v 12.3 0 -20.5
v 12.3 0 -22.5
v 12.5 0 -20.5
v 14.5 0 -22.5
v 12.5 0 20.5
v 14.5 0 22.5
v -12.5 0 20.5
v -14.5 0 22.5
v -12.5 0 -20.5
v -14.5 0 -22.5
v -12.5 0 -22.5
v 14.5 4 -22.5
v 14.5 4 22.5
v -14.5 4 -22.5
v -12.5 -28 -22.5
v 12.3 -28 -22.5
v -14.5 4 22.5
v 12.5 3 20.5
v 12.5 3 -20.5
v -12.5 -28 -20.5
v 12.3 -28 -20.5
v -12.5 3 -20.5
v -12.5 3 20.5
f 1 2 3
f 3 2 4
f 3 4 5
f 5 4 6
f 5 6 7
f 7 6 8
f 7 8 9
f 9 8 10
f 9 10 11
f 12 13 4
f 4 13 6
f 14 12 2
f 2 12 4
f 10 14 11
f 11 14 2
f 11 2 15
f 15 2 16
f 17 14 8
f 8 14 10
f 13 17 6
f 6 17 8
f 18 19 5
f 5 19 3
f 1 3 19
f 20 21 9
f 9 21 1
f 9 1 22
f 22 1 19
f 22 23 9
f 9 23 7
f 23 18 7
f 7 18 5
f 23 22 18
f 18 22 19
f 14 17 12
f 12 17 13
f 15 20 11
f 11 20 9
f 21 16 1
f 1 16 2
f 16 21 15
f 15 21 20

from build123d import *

# Parameters (mm, degrees)
SKETCH1_W           = 29
SKETCH1_H           = 45
SKETCH1_W_2         = 25
SKETCH1_H_2         = 41
BOSS_EXTRUDE1_DEPTH = 3
SKETCH2_W           = 29
SKETCH2_H           = 45
BOSS_EXTRUDE2_DEPTH = 1
SKETCH4_W           = 24.8
SKETCH4_H           = 2
BOSS_EXTRUDE3_DEPTH = 28


with BuildPart() as part:
    # Sketch1 → Boss-Extrude1 (new body)
    with BuildSketch(Plane(origin=(0, 0, 0), x_dir=(1, 0, 0), z_dir=(0, 1, 0))):
        Rectangle(SKETCH1_W, SKETCH1_H)
        Rectangle(SKETCH1_W_2, SKETCH1_H_2, mode=Mode.SUBTRACT)
    extrude(amount=BOSS_EXTRUDE1_DEPTH)

    # Sketch2 → Boss-Extrude2 (add)
    with BuildSketch(Plane(origin=(0, 3, 0), x_dir=(1, 0, 0), z_dir=(0, 1, 0))):
        Rectangle(SKETCH2_W, SKETCH2_H)
    extrude(amount=BOSS_EXTRUDE2_DEPTH)

    # Sketch4 → Boss-Extrude3 (add)
    with BuildSketch(Plane(origin=(0, 0, 0), x_dir=(-1, 0, 0), z_dir=(0, -1, 0))):
        with Locations((0.1, 21.5)):
            Rectangle(SKETCH4_W, SKETCH4_H)
    extrude(amount=BOSS_EXTRUDE3_DEPTH)


solid = part.part
